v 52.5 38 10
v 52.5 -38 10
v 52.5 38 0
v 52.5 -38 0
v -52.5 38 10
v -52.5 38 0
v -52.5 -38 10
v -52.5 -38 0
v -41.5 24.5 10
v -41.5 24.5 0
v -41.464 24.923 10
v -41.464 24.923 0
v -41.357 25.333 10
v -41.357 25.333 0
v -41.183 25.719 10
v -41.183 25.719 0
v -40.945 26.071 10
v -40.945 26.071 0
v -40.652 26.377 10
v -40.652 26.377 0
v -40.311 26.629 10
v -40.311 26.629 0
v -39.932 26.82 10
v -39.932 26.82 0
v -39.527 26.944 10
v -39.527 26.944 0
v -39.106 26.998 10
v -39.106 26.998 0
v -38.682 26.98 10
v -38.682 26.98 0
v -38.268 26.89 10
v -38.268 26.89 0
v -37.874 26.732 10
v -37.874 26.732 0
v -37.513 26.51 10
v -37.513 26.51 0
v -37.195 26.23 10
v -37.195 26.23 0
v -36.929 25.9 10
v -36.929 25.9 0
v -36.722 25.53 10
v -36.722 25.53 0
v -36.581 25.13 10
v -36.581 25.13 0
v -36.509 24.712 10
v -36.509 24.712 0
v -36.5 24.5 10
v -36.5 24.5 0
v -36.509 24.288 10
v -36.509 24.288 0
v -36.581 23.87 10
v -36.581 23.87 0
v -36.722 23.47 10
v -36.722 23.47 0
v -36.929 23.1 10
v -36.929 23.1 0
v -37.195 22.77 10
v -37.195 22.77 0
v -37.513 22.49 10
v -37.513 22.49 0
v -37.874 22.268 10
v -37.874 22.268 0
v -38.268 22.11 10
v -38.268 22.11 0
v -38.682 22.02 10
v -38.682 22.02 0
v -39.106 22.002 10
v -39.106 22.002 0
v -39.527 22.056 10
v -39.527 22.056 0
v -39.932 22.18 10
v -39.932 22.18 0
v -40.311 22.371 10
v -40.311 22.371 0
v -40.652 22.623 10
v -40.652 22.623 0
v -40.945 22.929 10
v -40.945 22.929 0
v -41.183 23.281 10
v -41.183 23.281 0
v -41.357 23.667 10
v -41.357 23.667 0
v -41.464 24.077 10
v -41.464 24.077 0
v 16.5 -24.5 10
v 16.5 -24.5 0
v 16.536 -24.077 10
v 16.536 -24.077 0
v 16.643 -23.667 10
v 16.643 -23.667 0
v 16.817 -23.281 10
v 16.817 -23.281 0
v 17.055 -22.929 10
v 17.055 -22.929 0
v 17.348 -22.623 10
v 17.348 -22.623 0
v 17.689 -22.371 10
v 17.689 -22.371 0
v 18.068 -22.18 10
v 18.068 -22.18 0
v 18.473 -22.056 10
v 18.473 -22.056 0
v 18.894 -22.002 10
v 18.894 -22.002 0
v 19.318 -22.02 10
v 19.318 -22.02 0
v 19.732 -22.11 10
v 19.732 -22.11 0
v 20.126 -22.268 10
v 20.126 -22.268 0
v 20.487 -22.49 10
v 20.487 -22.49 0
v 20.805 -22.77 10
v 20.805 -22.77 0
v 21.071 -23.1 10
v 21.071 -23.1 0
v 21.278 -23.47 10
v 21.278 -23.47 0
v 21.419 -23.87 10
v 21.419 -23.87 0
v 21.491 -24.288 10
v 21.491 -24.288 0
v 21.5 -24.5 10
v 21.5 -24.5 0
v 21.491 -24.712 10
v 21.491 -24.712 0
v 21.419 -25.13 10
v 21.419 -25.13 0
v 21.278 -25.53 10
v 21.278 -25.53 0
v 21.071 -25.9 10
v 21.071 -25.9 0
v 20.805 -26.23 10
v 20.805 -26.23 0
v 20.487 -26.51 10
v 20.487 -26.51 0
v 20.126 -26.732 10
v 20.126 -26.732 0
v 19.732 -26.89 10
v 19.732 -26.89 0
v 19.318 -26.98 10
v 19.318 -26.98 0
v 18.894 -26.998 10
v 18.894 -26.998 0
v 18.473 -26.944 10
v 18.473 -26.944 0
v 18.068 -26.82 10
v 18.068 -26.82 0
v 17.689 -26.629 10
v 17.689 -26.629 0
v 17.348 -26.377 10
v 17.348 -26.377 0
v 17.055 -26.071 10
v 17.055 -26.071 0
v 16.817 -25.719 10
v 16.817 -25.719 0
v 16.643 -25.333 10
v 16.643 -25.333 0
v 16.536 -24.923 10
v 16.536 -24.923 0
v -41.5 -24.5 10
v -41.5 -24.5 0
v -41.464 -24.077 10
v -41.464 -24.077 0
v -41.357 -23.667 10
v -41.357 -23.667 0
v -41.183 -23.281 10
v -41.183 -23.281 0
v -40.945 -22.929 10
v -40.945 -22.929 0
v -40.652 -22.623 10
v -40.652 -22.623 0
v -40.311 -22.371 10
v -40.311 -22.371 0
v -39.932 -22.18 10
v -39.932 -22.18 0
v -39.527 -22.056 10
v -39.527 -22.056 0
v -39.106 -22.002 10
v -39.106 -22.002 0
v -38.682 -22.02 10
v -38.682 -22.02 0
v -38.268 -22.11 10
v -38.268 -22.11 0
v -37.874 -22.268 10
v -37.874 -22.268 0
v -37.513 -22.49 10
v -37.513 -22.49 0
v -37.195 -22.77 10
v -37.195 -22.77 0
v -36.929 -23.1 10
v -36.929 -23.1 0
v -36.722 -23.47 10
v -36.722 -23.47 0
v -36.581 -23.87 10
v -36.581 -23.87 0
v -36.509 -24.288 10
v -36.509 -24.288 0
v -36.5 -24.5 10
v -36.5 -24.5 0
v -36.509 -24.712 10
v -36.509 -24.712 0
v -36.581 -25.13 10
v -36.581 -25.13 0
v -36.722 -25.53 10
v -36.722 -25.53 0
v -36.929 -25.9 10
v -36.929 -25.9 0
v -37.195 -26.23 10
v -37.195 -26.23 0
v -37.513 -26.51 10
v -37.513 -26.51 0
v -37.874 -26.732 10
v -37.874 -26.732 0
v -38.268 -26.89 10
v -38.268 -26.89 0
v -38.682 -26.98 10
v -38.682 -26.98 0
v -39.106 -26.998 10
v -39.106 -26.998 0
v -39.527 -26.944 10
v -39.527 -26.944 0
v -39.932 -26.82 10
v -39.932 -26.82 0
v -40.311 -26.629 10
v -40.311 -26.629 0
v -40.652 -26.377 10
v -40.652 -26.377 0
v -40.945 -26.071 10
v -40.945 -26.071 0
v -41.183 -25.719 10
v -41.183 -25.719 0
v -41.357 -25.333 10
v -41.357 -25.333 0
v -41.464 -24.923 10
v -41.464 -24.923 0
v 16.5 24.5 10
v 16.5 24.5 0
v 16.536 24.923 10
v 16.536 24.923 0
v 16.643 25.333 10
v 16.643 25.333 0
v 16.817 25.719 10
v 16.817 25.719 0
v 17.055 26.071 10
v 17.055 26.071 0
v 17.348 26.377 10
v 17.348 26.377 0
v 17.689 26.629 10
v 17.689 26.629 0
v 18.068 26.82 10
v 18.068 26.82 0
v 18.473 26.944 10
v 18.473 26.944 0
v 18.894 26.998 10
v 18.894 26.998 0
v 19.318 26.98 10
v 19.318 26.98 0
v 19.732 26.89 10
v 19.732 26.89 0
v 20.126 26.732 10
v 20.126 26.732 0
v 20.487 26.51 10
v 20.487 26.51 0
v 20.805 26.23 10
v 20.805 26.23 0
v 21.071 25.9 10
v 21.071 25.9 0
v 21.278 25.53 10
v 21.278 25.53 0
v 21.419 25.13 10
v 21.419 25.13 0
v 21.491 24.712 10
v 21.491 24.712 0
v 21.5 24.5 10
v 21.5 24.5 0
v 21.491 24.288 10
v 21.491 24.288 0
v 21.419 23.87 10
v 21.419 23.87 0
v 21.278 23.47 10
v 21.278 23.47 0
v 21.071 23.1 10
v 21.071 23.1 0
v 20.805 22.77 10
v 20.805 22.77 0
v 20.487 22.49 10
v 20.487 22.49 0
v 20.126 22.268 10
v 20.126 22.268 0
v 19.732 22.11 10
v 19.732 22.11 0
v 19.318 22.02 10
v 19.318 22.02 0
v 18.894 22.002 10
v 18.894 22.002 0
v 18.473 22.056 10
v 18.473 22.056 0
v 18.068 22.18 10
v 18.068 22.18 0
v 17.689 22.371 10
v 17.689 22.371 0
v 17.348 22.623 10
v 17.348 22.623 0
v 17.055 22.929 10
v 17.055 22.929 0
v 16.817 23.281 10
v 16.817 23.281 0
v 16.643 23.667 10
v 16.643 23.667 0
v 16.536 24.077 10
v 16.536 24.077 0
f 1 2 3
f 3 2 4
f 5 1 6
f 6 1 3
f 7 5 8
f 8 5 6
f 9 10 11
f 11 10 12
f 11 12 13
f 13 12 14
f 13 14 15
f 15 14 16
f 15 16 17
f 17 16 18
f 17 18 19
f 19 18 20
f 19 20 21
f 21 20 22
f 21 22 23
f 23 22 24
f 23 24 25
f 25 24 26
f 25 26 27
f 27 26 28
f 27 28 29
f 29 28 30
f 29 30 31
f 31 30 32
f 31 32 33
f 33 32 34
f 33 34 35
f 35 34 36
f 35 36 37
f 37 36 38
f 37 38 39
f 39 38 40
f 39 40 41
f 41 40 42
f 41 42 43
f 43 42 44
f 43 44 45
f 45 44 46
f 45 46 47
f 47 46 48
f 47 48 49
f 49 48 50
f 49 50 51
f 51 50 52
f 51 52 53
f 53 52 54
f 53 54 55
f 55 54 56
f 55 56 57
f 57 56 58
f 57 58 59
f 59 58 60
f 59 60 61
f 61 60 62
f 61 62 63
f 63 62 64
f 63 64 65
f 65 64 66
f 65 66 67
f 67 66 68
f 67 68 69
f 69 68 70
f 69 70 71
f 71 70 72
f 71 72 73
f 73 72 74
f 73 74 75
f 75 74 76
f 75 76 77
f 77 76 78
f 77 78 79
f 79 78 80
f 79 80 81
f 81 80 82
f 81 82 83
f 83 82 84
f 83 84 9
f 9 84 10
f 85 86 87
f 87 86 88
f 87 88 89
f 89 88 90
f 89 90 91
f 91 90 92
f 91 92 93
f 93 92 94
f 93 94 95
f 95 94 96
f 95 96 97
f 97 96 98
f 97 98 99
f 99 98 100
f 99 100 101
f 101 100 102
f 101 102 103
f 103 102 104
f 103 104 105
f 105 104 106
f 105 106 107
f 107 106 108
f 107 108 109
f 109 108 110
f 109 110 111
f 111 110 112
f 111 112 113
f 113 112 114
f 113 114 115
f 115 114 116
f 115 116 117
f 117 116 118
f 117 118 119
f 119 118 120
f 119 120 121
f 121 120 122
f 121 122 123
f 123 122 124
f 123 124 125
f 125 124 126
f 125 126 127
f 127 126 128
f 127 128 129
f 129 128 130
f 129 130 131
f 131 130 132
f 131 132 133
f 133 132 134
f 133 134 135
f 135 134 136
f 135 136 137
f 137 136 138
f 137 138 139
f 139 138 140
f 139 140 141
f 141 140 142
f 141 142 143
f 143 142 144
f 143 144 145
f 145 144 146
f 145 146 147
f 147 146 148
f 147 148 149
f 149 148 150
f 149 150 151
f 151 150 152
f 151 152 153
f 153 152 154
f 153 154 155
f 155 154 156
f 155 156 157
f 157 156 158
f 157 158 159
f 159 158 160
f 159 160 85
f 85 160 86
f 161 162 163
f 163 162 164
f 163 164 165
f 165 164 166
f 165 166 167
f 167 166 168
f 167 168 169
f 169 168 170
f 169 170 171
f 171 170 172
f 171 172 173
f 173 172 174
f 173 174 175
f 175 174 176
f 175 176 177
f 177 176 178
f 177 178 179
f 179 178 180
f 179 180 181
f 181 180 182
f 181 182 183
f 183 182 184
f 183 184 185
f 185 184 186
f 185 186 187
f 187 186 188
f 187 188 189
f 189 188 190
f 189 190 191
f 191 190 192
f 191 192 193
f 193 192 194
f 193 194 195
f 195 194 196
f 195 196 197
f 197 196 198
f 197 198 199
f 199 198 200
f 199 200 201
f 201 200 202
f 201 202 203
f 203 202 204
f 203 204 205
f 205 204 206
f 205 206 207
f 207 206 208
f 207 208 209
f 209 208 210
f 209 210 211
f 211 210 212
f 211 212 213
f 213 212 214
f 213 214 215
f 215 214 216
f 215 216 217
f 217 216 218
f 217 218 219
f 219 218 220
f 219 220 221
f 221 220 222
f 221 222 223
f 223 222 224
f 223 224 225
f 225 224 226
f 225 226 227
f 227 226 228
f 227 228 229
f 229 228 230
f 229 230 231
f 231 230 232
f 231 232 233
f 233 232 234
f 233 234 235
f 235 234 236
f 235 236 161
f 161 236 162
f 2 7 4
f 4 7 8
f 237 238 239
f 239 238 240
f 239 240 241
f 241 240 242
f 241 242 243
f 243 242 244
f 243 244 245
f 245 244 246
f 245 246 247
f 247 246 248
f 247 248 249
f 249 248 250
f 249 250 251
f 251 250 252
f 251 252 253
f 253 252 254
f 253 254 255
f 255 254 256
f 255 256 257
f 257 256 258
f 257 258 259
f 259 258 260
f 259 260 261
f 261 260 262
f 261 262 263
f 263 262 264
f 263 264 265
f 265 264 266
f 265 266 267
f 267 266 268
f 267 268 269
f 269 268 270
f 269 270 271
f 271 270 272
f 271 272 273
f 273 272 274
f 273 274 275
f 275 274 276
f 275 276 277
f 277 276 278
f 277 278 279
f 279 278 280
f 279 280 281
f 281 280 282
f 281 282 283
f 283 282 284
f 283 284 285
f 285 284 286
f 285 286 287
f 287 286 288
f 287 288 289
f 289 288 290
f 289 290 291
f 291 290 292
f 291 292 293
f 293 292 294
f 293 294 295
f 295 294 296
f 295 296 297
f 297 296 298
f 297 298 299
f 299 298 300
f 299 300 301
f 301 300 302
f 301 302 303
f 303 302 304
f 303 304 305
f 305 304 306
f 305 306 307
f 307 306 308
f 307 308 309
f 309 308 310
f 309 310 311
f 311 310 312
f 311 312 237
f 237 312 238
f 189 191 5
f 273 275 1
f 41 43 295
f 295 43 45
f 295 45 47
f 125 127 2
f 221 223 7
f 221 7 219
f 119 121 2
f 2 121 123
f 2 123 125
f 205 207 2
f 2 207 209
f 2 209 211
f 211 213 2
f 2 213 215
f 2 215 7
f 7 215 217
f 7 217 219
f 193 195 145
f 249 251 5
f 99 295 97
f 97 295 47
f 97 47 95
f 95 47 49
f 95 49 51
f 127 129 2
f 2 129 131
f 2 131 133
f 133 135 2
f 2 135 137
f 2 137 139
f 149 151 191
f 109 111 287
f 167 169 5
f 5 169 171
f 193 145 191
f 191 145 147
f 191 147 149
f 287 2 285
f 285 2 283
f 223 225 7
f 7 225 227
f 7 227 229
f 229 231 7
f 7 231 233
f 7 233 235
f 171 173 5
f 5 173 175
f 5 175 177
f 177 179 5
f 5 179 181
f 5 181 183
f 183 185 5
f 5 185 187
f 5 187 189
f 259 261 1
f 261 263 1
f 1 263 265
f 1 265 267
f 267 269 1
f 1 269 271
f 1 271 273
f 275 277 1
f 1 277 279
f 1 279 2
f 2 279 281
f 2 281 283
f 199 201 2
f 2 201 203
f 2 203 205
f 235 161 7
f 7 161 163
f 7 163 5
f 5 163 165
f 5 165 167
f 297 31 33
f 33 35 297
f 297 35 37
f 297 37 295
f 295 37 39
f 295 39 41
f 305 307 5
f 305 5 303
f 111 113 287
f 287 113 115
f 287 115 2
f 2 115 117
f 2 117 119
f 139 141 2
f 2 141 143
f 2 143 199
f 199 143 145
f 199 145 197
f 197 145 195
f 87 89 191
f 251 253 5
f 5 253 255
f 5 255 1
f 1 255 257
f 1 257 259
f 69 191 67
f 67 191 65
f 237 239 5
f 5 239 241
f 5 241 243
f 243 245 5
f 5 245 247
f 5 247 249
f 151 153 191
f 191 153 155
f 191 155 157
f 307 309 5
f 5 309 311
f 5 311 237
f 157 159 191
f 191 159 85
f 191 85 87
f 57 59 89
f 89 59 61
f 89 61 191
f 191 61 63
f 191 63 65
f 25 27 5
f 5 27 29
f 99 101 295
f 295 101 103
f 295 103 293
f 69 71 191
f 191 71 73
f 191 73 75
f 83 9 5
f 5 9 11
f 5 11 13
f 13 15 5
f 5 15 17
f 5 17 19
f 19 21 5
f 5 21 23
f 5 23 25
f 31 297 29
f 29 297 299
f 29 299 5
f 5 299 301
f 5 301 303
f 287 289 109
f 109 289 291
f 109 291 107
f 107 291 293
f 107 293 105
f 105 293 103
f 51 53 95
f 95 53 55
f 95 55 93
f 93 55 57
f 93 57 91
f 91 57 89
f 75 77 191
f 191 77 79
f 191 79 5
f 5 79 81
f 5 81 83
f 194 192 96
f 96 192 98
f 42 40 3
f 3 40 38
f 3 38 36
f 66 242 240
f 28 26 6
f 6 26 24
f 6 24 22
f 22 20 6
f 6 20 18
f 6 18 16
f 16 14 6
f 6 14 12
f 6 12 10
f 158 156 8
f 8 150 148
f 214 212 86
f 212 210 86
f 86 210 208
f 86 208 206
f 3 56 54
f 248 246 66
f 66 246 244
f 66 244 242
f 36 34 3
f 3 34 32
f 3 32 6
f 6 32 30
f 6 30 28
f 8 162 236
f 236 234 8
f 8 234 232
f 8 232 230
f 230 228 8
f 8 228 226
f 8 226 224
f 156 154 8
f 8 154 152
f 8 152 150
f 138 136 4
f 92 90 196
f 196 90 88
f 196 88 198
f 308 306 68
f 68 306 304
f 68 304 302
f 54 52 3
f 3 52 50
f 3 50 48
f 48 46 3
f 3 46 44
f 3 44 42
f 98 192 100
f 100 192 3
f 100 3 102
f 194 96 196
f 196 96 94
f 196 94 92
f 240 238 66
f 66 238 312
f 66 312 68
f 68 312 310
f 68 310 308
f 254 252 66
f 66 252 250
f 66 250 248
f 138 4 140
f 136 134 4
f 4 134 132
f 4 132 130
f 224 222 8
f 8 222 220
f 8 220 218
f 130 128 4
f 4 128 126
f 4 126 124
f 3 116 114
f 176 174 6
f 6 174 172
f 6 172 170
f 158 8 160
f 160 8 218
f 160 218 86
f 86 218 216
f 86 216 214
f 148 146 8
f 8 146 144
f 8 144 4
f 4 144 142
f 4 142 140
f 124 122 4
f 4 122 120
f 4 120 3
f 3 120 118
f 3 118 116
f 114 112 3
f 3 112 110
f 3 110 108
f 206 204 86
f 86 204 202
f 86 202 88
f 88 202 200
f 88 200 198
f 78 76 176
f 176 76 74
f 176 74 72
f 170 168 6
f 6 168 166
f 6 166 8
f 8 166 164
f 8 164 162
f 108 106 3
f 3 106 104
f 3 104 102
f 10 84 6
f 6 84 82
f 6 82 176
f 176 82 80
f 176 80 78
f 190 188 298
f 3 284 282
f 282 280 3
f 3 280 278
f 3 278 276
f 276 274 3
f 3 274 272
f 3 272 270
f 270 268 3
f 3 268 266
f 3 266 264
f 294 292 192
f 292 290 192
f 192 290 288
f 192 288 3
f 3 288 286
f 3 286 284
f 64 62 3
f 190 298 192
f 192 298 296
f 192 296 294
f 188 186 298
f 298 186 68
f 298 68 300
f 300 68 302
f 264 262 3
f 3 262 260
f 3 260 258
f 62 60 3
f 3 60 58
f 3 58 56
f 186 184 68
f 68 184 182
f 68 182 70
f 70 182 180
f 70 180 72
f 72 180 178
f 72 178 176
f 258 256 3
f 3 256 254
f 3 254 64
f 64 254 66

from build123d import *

# Parameters (mm, degrees)
SKETCH1_W           = 105
SKETCH1_H           = 76
SKETCH1_W_2         = 85
SKETCH1_H_2         = 56
SKETCH1_R           = 2.5
BOSS_EXTRUDE1_DEPTH = 10


with BuildPart() as part:
    # Sketch1 → Boss-Extrude1 (new body)
    with BuildSketch(Plane.XY):
        Rectangle(SKETCH1_W, SKETCH1_H)
        Rectangle(SKETCH1_W_2, SKETCH1_H_2, mode=Mode.SUBTRACT)
        Rectangle(SKETCH1_W_2, SKETCH1_H_2)
        with Locations((-39, -24.5)):
            Circle(SKETCH1_R, mode=Mode.SUBTRACT)
        with Locations((19, -24.5)):
            Circle(SKETCH1_R, mode=Mode.SUBTRACT)
        with Locations((-39, 24.5)):
            Circle(SKETCH1_R, mode=Mode.SUBTRACT)
        with Locations((19, 24.5)):
            Circle(SKETCH1_R, mode=Mode.SUBTRACT)
    extrude(amount=BOSS_EXTRUDE1_DEPTH)


solid = part.part
